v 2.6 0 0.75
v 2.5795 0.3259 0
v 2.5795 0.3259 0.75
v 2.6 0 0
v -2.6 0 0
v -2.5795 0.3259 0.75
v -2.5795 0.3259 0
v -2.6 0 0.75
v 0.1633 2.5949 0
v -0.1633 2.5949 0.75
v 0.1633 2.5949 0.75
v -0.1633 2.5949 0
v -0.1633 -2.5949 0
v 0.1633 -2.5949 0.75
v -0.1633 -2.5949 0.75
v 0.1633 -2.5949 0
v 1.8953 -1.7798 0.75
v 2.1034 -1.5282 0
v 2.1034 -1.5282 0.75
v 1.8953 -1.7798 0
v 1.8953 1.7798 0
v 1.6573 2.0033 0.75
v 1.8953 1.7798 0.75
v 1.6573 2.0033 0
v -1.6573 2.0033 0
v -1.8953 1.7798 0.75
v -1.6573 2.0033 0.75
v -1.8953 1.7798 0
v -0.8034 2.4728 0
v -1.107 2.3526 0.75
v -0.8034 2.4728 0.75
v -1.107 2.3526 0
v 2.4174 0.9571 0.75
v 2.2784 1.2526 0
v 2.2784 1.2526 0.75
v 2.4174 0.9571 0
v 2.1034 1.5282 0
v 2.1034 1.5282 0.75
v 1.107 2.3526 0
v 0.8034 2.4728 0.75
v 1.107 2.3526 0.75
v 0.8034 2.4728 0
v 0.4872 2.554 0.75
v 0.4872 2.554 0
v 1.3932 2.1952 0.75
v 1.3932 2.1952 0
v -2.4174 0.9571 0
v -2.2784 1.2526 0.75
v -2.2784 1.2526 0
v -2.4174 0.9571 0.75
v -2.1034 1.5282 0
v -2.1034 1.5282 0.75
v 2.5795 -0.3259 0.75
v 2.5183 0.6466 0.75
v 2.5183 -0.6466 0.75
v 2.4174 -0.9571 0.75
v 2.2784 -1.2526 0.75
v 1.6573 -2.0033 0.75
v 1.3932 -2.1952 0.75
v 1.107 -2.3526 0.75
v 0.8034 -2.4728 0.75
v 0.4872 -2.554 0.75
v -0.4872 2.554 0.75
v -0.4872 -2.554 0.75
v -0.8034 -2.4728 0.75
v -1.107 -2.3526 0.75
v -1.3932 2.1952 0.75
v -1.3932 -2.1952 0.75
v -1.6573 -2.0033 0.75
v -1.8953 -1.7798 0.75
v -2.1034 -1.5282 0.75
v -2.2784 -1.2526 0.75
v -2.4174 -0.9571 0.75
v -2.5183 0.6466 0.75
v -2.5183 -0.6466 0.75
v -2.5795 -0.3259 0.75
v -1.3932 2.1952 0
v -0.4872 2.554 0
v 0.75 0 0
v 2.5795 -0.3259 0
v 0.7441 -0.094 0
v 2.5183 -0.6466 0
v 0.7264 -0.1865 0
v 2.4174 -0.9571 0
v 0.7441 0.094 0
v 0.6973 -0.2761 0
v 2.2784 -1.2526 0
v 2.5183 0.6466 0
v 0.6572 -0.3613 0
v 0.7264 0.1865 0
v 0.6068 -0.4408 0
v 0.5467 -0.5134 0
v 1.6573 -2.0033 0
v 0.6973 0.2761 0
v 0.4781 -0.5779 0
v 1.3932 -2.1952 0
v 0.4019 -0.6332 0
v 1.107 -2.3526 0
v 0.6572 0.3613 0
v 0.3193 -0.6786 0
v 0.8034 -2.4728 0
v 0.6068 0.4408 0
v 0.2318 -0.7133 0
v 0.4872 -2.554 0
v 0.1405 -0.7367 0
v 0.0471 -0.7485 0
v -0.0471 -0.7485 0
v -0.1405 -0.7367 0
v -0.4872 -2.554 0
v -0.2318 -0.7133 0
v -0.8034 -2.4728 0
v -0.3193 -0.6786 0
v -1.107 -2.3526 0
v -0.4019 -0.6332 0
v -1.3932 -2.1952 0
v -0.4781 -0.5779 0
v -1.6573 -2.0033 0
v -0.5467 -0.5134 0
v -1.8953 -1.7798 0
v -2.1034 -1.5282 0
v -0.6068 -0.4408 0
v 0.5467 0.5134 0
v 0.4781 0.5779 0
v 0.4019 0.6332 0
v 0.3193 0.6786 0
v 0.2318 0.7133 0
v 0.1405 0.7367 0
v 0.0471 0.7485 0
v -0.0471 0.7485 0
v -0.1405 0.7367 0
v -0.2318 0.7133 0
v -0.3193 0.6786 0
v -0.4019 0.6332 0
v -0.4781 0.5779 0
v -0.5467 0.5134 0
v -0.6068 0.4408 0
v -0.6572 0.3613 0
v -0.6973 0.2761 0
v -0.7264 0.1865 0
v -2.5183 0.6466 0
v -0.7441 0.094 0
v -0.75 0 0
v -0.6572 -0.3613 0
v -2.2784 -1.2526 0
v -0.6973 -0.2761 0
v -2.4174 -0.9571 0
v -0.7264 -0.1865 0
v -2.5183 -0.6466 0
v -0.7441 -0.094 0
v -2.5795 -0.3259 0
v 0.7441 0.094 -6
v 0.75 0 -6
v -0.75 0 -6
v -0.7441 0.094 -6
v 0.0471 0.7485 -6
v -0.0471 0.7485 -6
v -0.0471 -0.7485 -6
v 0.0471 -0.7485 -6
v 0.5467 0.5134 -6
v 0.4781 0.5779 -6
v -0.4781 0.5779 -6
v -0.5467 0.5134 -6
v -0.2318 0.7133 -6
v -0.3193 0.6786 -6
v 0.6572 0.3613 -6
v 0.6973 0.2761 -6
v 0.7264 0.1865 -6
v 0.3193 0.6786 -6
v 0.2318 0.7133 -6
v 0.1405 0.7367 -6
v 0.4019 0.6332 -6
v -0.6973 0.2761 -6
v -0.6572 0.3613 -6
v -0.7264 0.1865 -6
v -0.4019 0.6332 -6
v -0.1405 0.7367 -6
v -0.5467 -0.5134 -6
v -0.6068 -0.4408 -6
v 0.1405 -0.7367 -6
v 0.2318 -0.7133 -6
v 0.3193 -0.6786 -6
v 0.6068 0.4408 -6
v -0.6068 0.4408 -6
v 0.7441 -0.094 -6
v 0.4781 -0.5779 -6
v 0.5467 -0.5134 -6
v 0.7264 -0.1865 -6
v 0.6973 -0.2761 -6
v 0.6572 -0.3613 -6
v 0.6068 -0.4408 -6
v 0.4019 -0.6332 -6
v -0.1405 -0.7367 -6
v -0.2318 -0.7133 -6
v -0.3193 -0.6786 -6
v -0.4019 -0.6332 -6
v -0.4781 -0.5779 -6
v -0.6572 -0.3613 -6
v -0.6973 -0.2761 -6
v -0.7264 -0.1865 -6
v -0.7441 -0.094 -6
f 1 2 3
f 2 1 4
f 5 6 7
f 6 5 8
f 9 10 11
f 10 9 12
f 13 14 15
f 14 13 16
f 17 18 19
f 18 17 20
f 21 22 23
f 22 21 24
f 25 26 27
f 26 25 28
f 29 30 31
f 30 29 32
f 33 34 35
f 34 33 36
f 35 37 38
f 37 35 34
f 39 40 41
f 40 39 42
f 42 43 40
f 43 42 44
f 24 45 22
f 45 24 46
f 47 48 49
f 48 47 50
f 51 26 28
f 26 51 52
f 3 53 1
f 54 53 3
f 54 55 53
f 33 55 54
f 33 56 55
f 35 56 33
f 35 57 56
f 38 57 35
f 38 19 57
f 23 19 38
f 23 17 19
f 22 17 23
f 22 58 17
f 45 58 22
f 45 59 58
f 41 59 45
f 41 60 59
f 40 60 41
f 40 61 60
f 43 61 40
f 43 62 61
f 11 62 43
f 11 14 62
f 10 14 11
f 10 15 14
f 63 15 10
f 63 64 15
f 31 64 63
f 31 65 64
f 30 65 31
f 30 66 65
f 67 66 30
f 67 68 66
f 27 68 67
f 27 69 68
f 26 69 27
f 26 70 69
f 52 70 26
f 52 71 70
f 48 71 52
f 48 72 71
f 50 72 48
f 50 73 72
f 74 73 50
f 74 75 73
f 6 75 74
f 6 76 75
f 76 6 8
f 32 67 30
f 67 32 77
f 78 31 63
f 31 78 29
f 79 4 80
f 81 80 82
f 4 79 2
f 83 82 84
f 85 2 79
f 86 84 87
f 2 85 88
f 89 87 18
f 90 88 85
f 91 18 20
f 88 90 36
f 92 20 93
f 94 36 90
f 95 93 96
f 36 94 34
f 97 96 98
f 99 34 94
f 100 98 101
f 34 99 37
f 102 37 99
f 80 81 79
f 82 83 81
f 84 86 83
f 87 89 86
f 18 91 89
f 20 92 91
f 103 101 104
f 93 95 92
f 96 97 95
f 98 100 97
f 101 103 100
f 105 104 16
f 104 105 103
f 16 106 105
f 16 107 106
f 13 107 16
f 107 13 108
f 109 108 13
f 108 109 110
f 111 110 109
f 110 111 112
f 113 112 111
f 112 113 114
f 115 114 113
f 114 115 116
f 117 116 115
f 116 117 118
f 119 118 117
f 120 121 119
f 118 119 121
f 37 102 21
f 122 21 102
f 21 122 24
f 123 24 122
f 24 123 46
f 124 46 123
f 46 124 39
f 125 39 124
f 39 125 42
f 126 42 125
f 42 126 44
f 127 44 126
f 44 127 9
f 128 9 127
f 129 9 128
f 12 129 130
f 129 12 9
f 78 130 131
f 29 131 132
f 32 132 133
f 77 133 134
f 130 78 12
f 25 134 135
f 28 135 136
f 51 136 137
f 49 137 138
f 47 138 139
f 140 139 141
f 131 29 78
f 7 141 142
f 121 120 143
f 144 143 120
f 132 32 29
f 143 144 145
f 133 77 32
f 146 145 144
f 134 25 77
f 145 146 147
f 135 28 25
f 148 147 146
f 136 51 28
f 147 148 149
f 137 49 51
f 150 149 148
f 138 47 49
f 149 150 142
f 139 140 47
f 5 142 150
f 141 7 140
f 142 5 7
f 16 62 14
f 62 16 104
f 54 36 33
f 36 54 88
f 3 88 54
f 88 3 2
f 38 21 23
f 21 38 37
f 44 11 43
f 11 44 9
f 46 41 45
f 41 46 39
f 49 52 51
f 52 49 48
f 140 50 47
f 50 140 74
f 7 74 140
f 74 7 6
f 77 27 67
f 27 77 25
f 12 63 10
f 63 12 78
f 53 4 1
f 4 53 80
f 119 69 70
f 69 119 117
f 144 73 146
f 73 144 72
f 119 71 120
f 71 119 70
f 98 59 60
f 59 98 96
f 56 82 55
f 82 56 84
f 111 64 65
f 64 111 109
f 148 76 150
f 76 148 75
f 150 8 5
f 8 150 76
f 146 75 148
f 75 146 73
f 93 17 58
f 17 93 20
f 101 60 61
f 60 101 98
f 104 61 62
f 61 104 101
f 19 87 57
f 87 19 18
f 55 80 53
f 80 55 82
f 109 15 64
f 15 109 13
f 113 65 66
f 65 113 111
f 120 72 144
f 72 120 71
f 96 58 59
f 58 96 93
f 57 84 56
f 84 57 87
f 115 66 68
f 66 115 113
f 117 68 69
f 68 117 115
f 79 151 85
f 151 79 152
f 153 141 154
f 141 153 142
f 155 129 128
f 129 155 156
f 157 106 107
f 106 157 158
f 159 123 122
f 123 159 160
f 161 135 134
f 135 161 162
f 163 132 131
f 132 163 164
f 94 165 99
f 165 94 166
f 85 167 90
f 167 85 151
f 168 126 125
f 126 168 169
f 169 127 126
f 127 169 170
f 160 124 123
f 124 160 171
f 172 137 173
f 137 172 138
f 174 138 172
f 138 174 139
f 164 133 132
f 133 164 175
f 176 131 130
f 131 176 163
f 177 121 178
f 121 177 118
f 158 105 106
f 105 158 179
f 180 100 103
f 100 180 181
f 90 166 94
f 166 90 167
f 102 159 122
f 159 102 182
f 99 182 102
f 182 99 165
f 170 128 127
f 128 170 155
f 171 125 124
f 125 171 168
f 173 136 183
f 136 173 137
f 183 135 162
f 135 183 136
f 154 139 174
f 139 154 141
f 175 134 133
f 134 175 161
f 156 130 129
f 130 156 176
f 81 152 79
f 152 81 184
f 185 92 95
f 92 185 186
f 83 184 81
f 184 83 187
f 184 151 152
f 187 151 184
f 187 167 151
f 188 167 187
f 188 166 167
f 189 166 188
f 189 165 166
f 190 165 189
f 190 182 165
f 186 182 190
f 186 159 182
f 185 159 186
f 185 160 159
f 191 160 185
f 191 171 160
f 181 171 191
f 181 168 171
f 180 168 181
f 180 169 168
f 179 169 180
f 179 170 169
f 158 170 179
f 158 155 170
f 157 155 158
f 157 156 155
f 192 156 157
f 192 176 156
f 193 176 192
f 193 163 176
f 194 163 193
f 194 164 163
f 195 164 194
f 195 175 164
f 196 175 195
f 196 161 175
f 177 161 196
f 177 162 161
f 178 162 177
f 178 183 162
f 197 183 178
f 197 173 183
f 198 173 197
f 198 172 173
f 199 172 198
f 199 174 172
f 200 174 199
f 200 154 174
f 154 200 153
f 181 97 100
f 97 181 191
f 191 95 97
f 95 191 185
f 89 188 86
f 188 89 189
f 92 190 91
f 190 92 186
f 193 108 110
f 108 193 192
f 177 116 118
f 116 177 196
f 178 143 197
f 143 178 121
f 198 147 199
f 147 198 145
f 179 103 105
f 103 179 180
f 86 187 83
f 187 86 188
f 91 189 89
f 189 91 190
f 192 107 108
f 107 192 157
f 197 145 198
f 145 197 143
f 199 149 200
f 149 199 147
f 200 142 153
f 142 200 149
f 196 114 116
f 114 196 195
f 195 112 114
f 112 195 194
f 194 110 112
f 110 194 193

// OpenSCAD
$fn = 50;


difference() {
	union() {
		translate(v = [0, 0, 0]) {
			rotate(a = [0, 0, 0]) {
				cylinder(h = 0.7500000000, r = 2.6000000000);
			}
		}
		translate(v = [0, 0, -6]) {
			rotate(a = [0, 0, 0]) {
				cylinder(h = 6, r = 0.7500000000);
			}
		}
	}
	union();
}
